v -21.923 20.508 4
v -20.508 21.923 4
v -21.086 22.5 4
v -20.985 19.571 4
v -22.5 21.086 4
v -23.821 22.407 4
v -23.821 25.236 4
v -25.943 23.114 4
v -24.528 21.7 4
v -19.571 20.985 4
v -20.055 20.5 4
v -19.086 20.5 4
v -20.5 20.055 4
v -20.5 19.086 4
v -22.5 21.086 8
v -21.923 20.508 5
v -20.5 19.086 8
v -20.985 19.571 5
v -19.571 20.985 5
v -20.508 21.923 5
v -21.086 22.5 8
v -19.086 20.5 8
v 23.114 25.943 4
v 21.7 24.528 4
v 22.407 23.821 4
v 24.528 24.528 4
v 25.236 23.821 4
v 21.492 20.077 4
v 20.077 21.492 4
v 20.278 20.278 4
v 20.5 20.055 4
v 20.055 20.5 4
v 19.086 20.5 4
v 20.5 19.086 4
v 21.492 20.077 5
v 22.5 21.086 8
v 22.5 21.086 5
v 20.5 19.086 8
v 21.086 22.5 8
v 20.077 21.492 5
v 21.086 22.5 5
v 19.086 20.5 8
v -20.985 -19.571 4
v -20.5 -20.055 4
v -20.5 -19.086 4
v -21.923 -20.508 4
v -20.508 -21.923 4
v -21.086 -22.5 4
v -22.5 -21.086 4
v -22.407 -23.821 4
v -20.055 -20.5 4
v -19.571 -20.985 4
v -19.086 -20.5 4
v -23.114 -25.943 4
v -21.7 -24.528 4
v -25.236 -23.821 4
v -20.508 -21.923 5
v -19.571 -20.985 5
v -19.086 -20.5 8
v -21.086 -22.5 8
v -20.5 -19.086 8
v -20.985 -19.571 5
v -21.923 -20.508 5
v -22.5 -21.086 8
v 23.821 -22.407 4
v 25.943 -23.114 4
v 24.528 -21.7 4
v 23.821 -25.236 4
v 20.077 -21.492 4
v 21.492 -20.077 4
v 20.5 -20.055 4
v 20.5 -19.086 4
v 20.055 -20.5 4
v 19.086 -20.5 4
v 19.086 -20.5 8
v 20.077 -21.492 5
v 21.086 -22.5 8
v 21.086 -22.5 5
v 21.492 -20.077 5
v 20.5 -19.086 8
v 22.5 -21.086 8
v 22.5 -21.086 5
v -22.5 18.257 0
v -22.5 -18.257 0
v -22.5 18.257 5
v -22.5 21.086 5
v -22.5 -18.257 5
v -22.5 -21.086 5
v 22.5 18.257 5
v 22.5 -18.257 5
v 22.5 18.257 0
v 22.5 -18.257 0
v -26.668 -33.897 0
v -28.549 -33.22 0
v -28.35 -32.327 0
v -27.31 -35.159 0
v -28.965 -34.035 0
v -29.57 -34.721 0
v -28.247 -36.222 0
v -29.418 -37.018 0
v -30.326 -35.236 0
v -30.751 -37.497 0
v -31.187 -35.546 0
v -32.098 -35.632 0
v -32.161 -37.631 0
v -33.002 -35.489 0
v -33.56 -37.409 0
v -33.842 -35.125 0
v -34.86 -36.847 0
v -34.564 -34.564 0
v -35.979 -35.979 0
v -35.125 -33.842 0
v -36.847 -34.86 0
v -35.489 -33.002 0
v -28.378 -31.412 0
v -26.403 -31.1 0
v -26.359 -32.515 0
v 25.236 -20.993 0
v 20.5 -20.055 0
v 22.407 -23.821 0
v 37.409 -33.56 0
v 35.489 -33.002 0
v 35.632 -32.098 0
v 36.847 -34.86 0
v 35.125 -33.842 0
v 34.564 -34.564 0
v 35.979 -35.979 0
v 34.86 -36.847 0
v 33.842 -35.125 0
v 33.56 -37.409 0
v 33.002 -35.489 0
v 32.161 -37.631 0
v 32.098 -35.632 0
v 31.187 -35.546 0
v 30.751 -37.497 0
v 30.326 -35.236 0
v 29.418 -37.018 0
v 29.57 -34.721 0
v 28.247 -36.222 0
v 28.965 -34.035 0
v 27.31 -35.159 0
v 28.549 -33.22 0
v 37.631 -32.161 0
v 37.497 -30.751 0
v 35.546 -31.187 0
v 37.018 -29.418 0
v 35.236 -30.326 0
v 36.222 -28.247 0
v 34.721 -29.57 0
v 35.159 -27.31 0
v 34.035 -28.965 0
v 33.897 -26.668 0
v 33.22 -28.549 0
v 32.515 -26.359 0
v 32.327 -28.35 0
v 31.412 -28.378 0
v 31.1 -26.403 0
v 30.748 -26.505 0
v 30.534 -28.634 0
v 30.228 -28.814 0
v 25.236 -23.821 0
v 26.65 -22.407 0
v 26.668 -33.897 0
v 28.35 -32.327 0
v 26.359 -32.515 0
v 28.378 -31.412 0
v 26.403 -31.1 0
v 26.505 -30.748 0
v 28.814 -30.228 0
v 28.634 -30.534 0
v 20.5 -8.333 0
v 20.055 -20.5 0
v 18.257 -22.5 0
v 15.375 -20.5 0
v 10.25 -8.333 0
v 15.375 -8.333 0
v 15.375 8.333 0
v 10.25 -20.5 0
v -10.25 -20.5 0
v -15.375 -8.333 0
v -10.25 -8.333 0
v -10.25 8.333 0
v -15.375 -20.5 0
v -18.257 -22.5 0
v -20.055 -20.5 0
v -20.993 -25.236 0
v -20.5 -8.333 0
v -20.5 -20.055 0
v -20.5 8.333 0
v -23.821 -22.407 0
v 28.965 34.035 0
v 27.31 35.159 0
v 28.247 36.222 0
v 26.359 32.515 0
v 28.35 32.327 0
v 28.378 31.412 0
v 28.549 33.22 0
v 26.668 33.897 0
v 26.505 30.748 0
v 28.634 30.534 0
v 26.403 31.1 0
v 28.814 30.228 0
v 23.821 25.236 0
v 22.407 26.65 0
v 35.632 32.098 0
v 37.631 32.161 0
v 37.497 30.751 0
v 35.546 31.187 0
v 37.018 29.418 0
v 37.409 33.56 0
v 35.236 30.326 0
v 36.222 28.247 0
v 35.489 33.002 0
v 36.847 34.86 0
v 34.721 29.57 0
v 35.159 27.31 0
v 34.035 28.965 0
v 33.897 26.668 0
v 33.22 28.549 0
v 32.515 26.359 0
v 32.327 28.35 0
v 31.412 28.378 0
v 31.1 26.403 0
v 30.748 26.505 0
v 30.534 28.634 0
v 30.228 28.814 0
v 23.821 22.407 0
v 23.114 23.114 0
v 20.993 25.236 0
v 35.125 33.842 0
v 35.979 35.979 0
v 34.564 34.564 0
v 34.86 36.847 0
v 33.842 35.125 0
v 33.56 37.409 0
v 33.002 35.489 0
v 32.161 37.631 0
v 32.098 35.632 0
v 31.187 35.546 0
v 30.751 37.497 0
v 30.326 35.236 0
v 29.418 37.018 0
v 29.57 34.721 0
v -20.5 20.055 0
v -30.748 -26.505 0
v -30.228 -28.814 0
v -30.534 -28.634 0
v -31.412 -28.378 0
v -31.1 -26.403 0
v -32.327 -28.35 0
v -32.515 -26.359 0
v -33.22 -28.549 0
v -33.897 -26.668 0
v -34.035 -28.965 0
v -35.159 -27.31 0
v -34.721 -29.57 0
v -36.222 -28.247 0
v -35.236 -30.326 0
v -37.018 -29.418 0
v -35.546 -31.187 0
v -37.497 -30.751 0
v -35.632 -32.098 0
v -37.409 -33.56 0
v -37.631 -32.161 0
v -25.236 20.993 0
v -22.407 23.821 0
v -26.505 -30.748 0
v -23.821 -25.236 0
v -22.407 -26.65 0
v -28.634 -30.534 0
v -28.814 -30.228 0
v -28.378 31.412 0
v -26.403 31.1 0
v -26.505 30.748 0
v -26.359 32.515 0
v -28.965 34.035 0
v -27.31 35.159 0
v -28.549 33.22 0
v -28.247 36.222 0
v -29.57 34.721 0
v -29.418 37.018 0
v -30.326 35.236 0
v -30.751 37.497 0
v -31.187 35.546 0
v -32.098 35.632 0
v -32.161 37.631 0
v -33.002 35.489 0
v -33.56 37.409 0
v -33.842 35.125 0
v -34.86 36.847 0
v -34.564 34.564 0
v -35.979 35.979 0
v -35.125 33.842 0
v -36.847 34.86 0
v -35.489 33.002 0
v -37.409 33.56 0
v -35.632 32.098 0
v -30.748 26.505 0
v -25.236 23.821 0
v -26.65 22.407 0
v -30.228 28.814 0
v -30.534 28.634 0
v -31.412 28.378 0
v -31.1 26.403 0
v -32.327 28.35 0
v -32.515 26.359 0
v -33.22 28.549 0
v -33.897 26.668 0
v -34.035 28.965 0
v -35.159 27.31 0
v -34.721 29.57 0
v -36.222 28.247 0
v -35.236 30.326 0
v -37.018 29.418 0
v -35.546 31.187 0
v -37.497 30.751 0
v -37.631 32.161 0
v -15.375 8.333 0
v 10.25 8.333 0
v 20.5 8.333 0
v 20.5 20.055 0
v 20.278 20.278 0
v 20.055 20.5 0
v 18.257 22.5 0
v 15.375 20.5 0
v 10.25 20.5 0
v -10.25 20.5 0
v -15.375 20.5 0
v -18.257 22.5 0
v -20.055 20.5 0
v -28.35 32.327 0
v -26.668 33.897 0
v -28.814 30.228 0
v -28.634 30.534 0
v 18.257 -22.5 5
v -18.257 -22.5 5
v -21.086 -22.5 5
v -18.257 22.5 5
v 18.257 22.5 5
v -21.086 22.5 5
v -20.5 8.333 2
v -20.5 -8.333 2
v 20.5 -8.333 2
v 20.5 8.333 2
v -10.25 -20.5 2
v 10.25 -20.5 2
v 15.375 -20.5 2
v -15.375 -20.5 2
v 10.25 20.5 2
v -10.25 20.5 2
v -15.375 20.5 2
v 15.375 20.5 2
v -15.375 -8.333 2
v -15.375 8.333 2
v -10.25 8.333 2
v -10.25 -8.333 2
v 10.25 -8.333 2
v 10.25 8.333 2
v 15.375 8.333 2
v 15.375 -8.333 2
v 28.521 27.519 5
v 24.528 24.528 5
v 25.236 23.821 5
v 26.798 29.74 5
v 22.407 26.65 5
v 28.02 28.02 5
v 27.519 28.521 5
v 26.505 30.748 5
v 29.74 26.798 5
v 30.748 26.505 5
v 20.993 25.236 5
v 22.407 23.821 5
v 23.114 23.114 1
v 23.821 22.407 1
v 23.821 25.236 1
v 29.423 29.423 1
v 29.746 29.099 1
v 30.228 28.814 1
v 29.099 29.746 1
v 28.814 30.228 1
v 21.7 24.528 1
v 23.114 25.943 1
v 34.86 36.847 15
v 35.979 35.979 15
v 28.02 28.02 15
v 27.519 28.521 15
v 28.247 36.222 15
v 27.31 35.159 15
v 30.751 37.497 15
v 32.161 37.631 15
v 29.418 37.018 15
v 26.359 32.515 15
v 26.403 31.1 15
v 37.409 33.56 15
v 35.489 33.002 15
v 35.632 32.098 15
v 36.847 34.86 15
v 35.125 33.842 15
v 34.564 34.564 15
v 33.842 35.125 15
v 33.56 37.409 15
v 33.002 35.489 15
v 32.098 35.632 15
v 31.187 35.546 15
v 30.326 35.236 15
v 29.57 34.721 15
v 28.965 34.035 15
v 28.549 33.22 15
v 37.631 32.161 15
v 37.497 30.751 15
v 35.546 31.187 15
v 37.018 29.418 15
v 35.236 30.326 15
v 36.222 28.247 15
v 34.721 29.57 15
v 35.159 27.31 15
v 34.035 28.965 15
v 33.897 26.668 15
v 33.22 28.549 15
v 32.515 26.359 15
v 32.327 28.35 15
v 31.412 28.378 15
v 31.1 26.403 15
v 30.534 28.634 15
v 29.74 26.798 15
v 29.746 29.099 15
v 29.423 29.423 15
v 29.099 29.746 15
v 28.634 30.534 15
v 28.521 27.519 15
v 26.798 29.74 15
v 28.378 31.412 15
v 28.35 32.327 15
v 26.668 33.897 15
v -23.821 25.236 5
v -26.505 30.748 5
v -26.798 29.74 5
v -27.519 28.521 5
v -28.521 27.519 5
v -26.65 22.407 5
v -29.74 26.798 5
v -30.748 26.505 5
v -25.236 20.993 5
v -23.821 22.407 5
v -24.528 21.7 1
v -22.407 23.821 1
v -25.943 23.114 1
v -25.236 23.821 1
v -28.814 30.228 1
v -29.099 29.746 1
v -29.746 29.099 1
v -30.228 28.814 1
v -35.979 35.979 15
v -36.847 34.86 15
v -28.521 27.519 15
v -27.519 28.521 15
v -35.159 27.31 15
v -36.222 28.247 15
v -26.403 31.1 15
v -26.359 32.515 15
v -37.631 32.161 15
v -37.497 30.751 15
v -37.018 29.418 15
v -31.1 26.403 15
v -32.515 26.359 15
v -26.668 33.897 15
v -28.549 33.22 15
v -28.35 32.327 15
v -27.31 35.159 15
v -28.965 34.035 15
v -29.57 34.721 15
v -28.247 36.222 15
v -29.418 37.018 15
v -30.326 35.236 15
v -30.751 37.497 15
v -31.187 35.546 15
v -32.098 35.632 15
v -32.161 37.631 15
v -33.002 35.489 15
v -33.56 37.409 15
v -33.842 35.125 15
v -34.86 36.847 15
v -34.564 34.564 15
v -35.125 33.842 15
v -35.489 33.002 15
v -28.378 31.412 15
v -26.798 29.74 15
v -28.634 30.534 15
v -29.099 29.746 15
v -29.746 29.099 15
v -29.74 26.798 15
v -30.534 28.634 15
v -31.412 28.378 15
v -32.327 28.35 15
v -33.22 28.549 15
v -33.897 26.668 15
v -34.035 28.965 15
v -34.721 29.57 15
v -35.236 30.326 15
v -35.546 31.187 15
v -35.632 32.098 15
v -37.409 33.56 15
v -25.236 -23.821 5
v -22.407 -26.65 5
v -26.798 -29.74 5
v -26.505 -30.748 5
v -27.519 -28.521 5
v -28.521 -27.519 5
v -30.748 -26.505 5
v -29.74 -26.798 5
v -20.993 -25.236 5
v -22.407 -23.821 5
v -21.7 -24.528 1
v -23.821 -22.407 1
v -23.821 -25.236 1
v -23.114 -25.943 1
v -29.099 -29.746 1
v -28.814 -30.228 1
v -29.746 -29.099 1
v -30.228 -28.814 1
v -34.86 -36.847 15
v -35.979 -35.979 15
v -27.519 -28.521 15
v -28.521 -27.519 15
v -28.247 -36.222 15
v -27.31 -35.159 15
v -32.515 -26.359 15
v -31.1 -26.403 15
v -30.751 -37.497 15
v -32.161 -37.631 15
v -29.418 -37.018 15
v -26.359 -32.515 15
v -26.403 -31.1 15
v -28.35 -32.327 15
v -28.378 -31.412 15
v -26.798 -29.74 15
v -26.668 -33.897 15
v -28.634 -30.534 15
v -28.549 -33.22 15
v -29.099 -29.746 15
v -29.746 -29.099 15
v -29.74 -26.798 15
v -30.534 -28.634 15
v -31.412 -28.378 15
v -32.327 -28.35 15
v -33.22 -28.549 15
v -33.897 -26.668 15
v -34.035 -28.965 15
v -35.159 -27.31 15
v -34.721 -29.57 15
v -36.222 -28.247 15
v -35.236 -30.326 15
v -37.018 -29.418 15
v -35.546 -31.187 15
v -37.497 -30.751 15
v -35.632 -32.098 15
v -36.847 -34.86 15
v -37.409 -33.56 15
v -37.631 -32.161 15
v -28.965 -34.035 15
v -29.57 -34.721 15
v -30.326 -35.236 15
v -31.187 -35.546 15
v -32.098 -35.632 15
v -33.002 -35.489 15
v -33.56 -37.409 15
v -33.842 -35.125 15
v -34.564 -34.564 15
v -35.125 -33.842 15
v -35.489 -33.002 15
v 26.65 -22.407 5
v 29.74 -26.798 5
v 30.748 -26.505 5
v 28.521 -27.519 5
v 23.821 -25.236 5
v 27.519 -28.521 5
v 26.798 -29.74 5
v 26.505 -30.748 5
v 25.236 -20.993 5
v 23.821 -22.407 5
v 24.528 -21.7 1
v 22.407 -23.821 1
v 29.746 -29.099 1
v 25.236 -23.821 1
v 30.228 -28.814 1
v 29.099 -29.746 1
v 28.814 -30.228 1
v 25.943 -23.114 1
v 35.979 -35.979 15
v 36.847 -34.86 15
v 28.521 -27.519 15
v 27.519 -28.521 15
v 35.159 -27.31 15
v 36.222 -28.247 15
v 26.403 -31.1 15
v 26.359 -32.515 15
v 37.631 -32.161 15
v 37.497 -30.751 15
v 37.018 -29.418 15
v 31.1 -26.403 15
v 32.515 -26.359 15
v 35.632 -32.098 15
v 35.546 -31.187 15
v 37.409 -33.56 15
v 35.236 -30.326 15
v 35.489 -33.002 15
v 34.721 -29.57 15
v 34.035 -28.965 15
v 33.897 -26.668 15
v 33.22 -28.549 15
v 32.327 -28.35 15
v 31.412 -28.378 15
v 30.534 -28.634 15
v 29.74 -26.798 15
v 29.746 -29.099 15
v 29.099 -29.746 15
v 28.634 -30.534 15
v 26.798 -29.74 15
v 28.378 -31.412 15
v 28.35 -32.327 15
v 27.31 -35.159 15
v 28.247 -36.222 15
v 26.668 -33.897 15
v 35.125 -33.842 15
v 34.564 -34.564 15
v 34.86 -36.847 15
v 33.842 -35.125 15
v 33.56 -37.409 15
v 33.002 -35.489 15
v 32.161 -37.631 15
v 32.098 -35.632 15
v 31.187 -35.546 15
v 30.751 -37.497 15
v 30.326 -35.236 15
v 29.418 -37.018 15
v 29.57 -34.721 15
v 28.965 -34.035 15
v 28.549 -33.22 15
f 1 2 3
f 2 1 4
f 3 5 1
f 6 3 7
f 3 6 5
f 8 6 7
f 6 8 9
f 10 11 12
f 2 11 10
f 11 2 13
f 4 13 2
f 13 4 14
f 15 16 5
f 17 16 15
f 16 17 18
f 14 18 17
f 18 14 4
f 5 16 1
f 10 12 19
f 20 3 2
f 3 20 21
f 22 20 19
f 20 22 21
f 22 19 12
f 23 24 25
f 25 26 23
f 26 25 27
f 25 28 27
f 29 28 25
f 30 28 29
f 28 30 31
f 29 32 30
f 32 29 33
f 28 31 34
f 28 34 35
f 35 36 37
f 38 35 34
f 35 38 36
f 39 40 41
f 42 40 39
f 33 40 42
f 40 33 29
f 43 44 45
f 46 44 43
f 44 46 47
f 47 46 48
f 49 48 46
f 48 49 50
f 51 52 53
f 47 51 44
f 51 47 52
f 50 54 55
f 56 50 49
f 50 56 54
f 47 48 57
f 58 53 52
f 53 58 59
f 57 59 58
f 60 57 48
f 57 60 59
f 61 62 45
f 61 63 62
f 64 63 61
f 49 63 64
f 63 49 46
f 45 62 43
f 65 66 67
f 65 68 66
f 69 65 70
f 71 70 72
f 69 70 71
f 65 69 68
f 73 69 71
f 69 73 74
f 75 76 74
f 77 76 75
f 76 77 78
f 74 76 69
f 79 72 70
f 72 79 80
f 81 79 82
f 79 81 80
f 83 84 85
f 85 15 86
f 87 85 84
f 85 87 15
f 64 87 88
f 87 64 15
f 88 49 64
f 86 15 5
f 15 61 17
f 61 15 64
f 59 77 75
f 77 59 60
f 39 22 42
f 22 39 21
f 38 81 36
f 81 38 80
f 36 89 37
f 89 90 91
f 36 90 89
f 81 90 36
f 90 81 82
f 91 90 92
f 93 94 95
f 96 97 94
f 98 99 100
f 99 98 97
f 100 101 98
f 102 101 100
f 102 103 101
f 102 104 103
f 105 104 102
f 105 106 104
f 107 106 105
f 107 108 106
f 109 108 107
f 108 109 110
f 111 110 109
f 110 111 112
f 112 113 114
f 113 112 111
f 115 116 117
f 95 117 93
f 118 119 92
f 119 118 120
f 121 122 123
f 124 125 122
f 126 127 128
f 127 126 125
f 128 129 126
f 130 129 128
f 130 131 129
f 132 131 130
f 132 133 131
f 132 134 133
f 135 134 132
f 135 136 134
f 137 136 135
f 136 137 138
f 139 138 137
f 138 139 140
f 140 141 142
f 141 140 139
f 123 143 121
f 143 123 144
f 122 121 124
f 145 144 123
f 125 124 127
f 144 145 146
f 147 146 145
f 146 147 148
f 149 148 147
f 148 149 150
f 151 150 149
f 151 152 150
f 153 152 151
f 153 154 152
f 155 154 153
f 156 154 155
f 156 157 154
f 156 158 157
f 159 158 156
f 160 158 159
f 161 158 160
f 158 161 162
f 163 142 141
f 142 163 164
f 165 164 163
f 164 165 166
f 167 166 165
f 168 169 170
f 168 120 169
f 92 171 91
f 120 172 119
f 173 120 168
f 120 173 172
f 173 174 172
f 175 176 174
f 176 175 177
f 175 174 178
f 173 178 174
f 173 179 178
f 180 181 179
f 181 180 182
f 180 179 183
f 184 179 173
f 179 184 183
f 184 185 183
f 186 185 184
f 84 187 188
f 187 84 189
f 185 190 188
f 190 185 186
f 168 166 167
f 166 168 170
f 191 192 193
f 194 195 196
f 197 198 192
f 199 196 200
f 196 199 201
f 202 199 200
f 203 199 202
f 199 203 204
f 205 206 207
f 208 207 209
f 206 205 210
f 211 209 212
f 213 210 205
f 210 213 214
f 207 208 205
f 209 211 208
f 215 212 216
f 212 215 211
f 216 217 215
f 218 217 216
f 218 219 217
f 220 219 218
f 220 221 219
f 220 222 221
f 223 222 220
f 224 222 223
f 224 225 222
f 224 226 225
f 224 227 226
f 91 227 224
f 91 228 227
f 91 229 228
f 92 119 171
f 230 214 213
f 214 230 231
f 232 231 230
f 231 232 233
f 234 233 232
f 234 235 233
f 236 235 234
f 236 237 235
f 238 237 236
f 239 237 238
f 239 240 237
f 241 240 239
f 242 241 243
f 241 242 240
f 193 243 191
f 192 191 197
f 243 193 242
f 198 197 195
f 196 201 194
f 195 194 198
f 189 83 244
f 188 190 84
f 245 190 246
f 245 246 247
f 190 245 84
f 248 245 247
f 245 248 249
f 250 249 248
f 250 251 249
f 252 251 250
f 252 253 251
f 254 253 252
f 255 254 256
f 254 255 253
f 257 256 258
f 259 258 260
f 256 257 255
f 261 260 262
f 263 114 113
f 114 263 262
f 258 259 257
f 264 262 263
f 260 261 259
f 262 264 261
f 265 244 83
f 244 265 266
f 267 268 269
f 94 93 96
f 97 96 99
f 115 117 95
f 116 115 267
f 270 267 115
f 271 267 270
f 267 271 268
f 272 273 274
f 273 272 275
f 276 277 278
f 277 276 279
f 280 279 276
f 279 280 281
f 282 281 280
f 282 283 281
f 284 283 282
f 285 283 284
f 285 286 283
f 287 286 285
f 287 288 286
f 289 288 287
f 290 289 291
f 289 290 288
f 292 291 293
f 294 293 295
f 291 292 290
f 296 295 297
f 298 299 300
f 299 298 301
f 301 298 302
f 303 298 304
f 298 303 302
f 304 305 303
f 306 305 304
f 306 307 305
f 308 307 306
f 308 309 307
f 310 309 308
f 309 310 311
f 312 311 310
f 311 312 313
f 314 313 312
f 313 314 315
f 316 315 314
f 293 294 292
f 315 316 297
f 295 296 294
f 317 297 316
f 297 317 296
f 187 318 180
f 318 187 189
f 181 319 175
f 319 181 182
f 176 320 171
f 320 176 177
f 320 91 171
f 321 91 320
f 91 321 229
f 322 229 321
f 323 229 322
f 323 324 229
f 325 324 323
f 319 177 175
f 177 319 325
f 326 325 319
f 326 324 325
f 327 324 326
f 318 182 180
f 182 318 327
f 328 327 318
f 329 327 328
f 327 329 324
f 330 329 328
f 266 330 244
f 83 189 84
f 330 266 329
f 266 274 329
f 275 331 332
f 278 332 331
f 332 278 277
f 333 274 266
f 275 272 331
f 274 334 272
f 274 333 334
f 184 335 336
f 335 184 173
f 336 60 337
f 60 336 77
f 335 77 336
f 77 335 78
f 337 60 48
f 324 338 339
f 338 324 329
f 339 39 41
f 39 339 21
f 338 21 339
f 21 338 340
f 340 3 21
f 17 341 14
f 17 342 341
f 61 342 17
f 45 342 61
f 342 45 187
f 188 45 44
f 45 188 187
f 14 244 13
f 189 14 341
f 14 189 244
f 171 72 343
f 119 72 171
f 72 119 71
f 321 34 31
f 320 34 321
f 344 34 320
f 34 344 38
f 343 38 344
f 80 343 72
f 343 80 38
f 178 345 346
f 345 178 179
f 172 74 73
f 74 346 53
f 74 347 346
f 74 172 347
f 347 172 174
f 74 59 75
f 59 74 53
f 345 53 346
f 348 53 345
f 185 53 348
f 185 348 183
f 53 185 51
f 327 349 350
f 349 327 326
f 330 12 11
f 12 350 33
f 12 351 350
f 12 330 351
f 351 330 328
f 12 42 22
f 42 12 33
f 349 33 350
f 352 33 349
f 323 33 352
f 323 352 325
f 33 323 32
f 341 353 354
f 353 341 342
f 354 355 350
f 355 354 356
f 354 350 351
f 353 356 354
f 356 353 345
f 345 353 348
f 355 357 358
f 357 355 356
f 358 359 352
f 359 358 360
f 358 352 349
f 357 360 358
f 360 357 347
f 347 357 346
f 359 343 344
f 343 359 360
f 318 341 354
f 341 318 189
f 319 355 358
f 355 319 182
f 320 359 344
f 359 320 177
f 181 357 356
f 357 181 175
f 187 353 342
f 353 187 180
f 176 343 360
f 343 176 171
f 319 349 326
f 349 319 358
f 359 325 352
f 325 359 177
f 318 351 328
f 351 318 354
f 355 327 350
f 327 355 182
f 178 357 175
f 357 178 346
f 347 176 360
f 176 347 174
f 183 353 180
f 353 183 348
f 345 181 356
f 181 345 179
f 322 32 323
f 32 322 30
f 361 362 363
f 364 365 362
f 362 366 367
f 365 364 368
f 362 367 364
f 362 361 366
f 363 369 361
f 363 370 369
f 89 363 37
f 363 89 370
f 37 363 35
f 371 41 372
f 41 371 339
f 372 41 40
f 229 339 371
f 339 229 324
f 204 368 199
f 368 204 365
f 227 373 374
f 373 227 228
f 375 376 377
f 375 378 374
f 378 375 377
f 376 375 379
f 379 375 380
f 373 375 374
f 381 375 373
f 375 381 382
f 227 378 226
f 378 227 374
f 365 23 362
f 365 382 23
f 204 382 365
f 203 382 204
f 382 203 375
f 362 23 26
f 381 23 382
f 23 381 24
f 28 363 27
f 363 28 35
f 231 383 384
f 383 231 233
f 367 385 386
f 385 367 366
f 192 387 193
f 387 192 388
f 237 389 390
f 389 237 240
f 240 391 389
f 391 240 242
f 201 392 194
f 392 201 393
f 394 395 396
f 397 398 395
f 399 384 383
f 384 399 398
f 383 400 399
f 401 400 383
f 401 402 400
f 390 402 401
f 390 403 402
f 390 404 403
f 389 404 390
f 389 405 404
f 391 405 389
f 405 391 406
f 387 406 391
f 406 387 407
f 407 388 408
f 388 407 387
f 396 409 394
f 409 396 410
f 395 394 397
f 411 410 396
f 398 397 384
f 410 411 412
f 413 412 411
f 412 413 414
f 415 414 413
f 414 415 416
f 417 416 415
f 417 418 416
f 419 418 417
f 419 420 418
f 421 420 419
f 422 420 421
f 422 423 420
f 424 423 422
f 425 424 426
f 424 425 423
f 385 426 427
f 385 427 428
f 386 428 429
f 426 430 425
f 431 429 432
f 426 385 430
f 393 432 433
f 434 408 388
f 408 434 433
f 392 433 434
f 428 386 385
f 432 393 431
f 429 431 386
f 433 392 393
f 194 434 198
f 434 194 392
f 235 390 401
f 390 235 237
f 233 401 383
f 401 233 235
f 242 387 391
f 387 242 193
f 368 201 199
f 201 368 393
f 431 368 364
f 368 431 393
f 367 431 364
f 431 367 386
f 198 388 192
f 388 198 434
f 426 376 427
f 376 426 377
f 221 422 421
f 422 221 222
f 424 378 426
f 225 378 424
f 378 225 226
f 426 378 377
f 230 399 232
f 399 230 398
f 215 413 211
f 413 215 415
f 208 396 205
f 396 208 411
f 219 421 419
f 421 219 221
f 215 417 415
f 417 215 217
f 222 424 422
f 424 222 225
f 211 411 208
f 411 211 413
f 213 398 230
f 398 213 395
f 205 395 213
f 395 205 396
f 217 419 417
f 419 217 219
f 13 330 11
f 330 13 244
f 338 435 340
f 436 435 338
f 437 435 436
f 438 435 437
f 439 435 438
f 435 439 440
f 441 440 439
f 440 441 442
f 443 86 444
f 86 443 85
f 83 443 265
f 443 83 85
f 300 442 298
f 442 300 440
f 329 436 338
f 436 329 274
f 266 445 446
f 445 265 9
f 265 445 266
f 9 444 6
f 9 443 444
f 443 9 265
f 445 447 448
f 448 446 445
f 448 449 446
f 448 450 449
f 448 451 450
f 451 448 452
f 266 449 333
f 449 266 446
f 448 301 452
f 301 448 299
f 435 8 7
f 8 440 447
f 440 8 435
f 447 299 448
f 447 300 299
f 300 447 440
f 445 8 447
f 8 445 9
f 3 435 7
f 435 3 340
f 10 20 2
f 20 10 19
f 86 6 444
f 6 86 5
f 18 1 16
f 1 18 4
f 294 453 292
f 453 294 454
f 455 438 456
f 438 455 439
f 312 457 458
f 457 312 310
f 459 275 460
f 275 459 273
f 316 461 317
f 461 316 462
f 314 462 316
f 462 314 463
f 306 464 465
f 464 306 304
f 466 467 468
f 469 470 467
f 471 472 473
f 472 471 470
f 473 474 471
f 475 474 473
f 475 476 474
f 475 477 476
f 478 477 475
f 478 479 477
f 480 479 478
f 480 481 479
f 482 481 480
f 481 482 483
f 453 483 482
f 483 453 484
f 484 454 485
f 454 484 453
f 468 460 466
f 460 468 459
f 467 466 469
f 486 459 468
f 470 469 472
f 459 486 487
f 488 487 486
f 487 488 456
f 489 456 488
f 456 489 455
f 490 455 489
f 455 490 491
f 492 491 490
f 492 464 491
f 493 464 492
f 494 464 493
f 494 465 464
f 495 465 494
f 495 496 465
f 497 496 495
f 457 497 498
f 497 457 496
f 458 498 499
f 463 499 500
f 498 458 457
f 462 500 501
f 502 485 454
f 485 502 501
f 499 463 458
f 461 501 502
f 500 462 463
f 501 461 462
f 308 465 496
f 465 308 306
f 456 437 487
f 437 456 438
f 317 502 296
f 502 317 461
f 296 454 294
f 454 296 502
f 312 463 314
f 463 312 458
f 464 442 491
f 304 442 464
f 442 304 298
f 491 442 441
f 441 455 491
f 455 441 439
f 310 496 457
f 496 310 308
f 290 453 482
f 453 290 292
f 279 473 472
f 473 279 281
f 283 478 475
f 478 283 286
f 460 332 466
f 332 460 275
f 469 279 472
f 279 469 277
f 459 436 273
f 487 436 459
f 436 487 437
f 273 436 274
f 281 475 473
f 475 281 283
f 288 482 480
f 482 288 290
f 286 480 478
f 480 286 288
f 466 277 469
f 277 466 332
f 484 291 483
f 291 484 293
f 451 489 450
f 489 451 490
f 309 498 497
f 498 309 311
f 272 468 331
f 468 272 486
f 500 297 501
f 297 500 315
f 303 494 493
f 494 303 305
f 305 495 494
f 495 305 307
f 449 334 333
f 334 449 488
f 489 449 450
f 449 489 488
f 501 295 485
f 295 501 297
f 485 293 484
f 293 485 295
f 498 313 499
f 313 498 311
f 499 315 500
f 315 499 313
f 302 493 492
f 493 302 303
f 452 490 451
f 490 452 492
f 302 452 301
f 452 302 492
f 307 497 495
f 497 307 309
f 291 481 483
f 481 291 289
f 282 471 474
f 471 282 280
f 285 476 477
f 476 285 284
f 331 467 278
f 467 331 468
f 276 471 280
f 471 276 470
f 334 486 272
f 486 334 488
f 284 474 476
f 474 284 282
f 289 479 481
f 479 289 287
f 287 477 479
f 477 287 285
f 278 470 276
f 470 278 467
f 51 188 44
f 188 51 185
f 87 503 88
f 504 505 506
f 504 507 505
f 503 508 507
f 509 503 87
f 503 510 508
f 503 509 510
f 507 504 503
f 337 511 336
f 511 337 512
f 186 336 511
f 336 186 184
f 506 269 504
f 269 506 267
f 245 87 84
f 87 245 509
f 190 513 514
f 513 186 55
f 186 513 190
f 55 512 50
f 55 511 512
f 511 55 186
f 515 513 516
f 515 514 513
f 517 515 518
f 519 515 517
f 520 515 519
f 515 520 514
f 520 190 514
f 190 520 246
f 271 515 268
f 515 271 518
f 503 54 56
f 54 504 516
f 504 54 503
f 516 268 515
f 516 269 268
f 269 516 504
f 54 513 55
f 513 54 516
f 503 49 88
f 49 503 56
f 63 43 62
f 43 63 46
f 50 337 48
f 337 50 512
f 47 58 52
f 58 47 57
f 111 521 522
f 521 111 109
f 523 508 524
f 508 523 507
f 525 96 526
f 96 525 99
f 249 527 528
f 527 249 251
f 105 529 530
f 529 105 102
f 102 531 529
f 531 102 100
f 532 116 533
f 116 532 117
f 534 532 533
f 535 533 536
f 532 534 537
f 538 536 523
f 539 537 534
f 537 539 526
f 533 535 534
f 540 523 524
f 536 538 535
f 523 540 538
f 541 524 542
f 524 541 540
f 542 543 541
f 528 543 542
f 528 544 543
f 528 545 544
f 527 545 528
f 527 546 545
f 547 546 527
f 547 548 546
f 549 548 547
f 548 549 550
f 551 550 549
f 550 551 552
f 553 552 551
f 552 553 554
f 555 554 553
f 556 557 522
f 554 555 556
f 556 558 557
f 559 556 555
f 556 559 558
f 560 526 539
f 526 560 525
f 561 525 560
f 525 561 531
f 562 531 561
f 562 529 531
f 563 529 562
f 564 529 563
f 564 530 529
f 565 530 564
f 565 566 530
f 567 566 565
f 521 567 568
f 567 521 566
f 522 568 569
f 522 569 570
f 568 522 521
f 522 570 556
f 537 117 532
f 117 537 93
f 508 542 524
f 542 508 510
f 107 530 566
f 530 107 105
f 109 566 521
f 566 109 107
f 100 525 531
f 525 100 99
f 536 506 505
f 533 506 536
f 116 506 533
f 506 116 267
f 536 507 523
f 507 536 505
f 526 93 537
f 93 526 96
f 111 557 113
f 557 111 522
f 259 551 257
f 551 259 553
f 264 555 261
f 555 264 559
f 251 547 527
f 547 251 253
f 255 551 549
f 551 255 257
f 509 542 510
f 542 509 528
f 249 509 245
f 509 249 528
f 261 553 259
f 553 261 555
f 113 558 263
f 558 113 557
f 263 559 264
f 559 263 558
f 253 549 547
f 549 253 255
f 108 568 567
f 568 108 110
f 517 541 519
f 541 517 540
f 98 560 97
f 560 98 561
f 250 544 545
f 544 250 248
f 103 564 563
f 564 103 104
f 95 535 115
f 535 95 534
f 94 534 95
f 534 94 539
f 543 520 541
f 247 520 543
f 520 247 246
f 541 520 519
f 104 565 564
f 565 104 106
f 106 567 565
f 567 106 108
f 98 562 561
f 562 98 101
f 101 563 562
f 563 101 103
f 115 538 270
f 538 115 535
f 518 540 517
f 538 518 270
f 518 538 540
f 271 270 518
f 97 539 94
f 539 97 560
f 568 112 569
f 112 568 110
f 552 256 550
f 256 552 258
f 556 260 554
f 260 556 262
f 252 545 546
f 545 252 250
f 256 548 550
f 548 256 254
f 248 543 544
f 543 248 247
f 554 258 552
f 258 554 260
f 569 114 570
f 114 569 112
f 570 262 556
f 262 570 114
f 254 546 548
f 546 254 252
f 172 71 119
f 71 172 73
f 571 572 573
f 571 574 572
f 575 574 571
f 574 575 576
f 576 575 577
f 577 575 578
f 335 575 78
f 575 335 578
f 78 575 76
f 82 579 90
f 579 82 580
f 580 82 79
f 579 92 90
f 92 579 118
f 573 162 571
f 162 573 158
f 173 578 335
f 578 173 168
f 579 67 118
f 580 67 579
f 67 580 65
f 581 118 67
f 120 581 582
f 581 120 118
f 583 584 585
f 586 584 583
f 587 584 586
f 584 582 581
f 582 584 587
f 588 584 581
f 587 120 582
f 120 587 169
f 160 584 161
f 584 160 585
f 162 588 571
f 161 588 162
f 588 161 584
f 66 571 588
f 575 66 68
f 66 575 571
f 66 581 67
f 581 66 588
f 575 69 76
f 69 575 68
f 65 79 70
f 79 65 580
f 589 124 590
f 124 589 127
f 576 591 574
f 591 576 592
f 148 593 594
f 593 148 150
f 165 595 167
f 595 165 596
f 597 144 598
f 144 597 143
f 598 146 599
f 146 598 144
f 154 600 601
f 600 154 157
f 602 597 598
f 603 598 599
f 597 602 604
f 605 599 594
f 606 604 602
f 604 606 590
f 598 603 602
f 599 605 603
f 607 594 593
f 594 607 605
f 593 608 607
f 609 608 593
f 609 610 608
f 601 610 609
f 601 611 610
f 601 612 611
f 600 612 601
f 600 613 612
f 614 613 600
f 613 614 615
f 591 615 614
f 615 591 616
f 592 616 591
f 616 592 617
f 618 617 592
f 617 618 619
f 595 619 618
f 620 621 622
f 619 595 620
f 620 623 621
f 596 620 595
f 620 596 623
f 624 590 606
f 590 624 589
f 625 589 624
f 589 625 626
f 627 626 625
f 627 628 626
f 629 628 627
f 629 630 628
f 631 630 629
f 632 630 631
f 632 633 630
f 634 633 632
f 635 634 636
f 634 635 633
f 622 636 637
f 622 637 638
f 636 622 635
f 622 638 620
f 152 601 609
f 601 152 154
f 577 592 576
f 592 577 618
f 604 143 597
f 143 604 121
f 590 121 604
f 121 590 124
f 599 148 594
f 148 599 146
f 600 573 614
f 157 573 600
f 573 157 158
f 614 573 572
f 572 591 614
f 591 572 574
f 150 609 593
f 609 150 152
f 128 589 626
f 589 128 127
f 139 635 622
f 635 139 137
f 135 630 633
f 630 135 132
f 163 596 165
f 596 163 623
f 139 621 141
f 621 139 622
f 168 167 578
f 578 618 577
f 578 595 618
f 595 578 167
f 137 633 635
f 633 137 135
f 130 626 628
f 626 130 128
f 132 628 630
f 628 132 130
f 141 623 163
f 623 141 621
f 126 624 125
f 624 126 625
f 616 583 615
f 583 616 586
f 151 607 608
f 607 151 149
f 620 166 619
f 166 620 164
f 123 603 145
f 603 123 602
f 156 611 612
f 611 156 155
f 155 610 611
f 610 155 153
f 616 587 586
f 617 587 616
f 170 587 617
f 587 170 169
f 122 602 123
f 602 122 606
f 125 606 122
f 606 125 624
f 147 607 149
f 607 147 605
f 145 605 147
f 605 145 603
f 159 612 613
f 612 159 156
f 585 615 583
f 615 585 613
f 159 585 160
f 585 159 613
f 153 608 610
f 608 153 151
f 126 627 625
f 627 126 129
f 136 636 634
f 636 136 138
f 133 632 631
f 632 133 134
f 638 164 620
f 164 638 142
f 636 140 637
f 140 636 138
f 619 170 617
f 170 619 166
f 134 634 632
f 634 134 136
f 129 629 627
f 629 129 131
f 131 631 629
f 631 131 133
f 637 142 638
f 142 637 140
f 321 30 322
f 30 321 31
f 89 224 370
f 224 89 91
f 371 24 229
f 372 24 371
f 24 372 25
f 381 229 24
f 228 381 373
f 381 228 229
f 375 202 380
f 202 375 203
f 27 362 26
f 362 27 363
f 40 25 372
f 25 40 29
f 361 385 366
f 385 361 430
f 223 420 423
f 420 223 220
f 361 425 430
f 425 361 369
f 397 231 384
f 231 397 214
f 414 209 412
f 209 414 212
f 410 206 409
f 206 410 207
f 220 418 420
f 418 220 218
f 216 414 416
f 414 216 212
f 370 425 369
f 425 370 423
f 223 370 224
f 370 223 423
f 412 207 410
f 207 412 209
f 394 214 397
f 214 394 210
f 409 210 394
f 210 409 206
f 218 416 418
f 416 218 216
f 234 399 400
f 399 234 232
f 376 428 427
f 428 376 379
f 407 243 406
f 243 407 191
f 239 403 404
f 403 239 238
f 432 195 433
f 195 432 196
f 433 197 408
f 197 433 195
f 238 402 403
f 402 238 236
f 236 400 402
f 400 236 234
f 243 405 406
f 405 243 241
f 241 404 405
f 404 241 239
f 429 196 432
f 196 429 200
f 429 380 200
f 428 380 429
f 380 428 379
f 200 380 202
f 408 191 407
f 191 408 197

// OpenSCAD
/*
 * Created by:
 * Thomas Buck <xythobuz@xythobuz.de> in April 2016
 *
 * Licensed under the
 * Creative Commons - Attribution - Share Alike license.
 *
 * Idea based on the "Parametric brushed micro quadcopter"
 * by "drkow" / Patrick Sapinski:
 * http://www.thingiverse.com/thing:843597
 */

// -----------------------------------------------------------

wallSize = 2;
armSize = 6;
motorDiameter = 7.3;
baseWidth = 41;
diameter = 78;
height = 5;
bodyHeight = 8;

motorHeight = 15;

wireWidth = 2;
wireHeight = 1;

// size of a Turnigy nano-tech 1S 750mAh LiPo
batteryWidth = 25;
batteryLength = 45;
batteryHeight = 10;

// Hubsan compatible propellers/motors
propeller = 55;
realMotorHeight = 20;

$fn = 25;

// -----------------------------------------------------------

baseLength = baseWidth + (2 * wallSize);
realBaseLength = 2 * sqrt(2 * (baseLength / 2) * (baseLength / 2));
armDiameter = motorDiameter + (wallSize * 2);
realDiameter = 2 * sqrt(2 * (diameter / 2) * (diameter / 2));
armLength = ((realDiameter - realBaseLength) / 2) - armDiameter;

// -----------------------------------------------------------

module arm() {
    difference() {
        // arm
        translate([0, -armSize / 2, 0])
            cube([armLength, armSize, height]);
        
        // wire grooves
        translate([armLength / 3, -wireWidth / 2, 0])
            cube([armLength * 2 / 3, wireWidth, wireHeight]);
        translate([armLength / 3, -wireWidth / 2, 0])
            cube([wireWidth, armSize, wireHeight]);
        translate([armLength / 3, armSize / 2 - wireHeight, -height / 2])
            cube([wireWidth, wireHeight, height * 2]);
        translate([armLength / 3, -wireWidth / 2, height - wireHeight])
            cube([wireWidth, armSize, wireHeight]);
        translate([-wireWidth, -wireWidth / 2, height - wireHeight])
            cube([armLength / 2, wireWidth, wireHeight]);
    }
    
    // motor mount
    translate([armLength + (armDiameter * 2 / 5), 0, 0])
    union() {
        difference() {
            // wall
            cylinder(d = armDiameter, h = motorHeight);
        
            // motor hole
            cylinder(d = motorDiameter, h = motorHeight);
            
            // wire groove
            translate([-(motorDiameter / 2) - (wallSize * 3 / 2), -wireWidth / 2, 0])
                cube([2 * wallSize, wireWidth, wireHeight]);
        }
        
        // visualize motors
        %cylinder(d = motorDiameter, h = realMotorHeight);
        
        // visualize propellers
        %translate([0, 0, realMotorHeight])
            cylinder(d = propeller, h = 2);
    }
}

// -----------------------------------------------------------

// visualize real diameter (print bed size)
%translate([-diameter / 2, -diameter / 2, -height - batteryHeight])
    cube([diameter, diameter, height]);

// four arms
rotate([0, 0, 45])
for (i = [0 : 90 : 360]) {
    rotate([0, 0, i])
        translate([realBaseLength / 2 - (wallSize * 11 / 7), 0, 0])
        arm();
}

difference() {
    // body
    translate([-baseLength / 2, -baseLength / 2, 0])
        cube([baseLength, baseLength, bodyHeight]);
    
    // space for flight control
    translate([-baseWidth / 2, -baseWidth / 2, -bodyHeight / 2])
        cube([baseWidth, baseWidth, bodyHeight * 2]);
    
    // wire grooves
    for (i = [0 : 3]) {
        a = (i % 2) ? 1 : -1;
        b = (i < 2) ? 1 : -1;
        translate([a * (baseWidth + wallSize) / 2
                        - ((a == 1) ? (
                            (b == 1) ? wallSize / 2 : wallSize / 2)
                        : 0),
                    b * (baseWidth + wallSize) / 2
                        - ((a == 1) ? (
                            (b == 1) ? wallSize / 2 : -wallSize / 2)
                        : 0),
                    height - wireHeight])
            rotate([0, 0, a * b * 45])
            translate([-wallSize, -wireWidth / 2, 0])
            cube([wallSize * 3, wireWidth, bodyHeight]);
    }
}

// battery holder / bottom part
union() {
    translate([-baseWidth / 2, -batteryWidth / 3, 0])
        cube([baseWidth, batteryWidth * 2 / 3, wallSize]);

    translate([baseWidth / 4, batteryWidth / 3, 0])
        cube([baseWidth / 8, (baseWidth - batteryWidth * 2 / 3) / 2, wallSize]);
    
    translate([-baseWidth * 6 / 16, batteryWidth / 3, 0])
        cube([baseWidth / 8, (baseWidth - batteryWidth * 2 / 3) / 2, wallSize]);
    
    translate([baseWidth / 4, - batteryWidth / 2 - (baseWidth - batteryWidth) / 2, 0])
        cube([baseWidth / 8, (baseWidth - batteryWidth * 2 / 3) / 2, wallSize]);
    
    translate([-baseWidth * 6 / 16, - batteryWidth / 2 - (baseWidth - batteryWidth) / 2, 0])
        cube([baseWidth / 8, (baseWidth - batteryWidth * 2 / 3) / 2, wallSize]);
}

// visualize battery
%translate([-batteryLength / 2, -batteryWidth / 2, -batteryHeight])
    cube([batteryLength, batteryWidth, batteryHeight]);
